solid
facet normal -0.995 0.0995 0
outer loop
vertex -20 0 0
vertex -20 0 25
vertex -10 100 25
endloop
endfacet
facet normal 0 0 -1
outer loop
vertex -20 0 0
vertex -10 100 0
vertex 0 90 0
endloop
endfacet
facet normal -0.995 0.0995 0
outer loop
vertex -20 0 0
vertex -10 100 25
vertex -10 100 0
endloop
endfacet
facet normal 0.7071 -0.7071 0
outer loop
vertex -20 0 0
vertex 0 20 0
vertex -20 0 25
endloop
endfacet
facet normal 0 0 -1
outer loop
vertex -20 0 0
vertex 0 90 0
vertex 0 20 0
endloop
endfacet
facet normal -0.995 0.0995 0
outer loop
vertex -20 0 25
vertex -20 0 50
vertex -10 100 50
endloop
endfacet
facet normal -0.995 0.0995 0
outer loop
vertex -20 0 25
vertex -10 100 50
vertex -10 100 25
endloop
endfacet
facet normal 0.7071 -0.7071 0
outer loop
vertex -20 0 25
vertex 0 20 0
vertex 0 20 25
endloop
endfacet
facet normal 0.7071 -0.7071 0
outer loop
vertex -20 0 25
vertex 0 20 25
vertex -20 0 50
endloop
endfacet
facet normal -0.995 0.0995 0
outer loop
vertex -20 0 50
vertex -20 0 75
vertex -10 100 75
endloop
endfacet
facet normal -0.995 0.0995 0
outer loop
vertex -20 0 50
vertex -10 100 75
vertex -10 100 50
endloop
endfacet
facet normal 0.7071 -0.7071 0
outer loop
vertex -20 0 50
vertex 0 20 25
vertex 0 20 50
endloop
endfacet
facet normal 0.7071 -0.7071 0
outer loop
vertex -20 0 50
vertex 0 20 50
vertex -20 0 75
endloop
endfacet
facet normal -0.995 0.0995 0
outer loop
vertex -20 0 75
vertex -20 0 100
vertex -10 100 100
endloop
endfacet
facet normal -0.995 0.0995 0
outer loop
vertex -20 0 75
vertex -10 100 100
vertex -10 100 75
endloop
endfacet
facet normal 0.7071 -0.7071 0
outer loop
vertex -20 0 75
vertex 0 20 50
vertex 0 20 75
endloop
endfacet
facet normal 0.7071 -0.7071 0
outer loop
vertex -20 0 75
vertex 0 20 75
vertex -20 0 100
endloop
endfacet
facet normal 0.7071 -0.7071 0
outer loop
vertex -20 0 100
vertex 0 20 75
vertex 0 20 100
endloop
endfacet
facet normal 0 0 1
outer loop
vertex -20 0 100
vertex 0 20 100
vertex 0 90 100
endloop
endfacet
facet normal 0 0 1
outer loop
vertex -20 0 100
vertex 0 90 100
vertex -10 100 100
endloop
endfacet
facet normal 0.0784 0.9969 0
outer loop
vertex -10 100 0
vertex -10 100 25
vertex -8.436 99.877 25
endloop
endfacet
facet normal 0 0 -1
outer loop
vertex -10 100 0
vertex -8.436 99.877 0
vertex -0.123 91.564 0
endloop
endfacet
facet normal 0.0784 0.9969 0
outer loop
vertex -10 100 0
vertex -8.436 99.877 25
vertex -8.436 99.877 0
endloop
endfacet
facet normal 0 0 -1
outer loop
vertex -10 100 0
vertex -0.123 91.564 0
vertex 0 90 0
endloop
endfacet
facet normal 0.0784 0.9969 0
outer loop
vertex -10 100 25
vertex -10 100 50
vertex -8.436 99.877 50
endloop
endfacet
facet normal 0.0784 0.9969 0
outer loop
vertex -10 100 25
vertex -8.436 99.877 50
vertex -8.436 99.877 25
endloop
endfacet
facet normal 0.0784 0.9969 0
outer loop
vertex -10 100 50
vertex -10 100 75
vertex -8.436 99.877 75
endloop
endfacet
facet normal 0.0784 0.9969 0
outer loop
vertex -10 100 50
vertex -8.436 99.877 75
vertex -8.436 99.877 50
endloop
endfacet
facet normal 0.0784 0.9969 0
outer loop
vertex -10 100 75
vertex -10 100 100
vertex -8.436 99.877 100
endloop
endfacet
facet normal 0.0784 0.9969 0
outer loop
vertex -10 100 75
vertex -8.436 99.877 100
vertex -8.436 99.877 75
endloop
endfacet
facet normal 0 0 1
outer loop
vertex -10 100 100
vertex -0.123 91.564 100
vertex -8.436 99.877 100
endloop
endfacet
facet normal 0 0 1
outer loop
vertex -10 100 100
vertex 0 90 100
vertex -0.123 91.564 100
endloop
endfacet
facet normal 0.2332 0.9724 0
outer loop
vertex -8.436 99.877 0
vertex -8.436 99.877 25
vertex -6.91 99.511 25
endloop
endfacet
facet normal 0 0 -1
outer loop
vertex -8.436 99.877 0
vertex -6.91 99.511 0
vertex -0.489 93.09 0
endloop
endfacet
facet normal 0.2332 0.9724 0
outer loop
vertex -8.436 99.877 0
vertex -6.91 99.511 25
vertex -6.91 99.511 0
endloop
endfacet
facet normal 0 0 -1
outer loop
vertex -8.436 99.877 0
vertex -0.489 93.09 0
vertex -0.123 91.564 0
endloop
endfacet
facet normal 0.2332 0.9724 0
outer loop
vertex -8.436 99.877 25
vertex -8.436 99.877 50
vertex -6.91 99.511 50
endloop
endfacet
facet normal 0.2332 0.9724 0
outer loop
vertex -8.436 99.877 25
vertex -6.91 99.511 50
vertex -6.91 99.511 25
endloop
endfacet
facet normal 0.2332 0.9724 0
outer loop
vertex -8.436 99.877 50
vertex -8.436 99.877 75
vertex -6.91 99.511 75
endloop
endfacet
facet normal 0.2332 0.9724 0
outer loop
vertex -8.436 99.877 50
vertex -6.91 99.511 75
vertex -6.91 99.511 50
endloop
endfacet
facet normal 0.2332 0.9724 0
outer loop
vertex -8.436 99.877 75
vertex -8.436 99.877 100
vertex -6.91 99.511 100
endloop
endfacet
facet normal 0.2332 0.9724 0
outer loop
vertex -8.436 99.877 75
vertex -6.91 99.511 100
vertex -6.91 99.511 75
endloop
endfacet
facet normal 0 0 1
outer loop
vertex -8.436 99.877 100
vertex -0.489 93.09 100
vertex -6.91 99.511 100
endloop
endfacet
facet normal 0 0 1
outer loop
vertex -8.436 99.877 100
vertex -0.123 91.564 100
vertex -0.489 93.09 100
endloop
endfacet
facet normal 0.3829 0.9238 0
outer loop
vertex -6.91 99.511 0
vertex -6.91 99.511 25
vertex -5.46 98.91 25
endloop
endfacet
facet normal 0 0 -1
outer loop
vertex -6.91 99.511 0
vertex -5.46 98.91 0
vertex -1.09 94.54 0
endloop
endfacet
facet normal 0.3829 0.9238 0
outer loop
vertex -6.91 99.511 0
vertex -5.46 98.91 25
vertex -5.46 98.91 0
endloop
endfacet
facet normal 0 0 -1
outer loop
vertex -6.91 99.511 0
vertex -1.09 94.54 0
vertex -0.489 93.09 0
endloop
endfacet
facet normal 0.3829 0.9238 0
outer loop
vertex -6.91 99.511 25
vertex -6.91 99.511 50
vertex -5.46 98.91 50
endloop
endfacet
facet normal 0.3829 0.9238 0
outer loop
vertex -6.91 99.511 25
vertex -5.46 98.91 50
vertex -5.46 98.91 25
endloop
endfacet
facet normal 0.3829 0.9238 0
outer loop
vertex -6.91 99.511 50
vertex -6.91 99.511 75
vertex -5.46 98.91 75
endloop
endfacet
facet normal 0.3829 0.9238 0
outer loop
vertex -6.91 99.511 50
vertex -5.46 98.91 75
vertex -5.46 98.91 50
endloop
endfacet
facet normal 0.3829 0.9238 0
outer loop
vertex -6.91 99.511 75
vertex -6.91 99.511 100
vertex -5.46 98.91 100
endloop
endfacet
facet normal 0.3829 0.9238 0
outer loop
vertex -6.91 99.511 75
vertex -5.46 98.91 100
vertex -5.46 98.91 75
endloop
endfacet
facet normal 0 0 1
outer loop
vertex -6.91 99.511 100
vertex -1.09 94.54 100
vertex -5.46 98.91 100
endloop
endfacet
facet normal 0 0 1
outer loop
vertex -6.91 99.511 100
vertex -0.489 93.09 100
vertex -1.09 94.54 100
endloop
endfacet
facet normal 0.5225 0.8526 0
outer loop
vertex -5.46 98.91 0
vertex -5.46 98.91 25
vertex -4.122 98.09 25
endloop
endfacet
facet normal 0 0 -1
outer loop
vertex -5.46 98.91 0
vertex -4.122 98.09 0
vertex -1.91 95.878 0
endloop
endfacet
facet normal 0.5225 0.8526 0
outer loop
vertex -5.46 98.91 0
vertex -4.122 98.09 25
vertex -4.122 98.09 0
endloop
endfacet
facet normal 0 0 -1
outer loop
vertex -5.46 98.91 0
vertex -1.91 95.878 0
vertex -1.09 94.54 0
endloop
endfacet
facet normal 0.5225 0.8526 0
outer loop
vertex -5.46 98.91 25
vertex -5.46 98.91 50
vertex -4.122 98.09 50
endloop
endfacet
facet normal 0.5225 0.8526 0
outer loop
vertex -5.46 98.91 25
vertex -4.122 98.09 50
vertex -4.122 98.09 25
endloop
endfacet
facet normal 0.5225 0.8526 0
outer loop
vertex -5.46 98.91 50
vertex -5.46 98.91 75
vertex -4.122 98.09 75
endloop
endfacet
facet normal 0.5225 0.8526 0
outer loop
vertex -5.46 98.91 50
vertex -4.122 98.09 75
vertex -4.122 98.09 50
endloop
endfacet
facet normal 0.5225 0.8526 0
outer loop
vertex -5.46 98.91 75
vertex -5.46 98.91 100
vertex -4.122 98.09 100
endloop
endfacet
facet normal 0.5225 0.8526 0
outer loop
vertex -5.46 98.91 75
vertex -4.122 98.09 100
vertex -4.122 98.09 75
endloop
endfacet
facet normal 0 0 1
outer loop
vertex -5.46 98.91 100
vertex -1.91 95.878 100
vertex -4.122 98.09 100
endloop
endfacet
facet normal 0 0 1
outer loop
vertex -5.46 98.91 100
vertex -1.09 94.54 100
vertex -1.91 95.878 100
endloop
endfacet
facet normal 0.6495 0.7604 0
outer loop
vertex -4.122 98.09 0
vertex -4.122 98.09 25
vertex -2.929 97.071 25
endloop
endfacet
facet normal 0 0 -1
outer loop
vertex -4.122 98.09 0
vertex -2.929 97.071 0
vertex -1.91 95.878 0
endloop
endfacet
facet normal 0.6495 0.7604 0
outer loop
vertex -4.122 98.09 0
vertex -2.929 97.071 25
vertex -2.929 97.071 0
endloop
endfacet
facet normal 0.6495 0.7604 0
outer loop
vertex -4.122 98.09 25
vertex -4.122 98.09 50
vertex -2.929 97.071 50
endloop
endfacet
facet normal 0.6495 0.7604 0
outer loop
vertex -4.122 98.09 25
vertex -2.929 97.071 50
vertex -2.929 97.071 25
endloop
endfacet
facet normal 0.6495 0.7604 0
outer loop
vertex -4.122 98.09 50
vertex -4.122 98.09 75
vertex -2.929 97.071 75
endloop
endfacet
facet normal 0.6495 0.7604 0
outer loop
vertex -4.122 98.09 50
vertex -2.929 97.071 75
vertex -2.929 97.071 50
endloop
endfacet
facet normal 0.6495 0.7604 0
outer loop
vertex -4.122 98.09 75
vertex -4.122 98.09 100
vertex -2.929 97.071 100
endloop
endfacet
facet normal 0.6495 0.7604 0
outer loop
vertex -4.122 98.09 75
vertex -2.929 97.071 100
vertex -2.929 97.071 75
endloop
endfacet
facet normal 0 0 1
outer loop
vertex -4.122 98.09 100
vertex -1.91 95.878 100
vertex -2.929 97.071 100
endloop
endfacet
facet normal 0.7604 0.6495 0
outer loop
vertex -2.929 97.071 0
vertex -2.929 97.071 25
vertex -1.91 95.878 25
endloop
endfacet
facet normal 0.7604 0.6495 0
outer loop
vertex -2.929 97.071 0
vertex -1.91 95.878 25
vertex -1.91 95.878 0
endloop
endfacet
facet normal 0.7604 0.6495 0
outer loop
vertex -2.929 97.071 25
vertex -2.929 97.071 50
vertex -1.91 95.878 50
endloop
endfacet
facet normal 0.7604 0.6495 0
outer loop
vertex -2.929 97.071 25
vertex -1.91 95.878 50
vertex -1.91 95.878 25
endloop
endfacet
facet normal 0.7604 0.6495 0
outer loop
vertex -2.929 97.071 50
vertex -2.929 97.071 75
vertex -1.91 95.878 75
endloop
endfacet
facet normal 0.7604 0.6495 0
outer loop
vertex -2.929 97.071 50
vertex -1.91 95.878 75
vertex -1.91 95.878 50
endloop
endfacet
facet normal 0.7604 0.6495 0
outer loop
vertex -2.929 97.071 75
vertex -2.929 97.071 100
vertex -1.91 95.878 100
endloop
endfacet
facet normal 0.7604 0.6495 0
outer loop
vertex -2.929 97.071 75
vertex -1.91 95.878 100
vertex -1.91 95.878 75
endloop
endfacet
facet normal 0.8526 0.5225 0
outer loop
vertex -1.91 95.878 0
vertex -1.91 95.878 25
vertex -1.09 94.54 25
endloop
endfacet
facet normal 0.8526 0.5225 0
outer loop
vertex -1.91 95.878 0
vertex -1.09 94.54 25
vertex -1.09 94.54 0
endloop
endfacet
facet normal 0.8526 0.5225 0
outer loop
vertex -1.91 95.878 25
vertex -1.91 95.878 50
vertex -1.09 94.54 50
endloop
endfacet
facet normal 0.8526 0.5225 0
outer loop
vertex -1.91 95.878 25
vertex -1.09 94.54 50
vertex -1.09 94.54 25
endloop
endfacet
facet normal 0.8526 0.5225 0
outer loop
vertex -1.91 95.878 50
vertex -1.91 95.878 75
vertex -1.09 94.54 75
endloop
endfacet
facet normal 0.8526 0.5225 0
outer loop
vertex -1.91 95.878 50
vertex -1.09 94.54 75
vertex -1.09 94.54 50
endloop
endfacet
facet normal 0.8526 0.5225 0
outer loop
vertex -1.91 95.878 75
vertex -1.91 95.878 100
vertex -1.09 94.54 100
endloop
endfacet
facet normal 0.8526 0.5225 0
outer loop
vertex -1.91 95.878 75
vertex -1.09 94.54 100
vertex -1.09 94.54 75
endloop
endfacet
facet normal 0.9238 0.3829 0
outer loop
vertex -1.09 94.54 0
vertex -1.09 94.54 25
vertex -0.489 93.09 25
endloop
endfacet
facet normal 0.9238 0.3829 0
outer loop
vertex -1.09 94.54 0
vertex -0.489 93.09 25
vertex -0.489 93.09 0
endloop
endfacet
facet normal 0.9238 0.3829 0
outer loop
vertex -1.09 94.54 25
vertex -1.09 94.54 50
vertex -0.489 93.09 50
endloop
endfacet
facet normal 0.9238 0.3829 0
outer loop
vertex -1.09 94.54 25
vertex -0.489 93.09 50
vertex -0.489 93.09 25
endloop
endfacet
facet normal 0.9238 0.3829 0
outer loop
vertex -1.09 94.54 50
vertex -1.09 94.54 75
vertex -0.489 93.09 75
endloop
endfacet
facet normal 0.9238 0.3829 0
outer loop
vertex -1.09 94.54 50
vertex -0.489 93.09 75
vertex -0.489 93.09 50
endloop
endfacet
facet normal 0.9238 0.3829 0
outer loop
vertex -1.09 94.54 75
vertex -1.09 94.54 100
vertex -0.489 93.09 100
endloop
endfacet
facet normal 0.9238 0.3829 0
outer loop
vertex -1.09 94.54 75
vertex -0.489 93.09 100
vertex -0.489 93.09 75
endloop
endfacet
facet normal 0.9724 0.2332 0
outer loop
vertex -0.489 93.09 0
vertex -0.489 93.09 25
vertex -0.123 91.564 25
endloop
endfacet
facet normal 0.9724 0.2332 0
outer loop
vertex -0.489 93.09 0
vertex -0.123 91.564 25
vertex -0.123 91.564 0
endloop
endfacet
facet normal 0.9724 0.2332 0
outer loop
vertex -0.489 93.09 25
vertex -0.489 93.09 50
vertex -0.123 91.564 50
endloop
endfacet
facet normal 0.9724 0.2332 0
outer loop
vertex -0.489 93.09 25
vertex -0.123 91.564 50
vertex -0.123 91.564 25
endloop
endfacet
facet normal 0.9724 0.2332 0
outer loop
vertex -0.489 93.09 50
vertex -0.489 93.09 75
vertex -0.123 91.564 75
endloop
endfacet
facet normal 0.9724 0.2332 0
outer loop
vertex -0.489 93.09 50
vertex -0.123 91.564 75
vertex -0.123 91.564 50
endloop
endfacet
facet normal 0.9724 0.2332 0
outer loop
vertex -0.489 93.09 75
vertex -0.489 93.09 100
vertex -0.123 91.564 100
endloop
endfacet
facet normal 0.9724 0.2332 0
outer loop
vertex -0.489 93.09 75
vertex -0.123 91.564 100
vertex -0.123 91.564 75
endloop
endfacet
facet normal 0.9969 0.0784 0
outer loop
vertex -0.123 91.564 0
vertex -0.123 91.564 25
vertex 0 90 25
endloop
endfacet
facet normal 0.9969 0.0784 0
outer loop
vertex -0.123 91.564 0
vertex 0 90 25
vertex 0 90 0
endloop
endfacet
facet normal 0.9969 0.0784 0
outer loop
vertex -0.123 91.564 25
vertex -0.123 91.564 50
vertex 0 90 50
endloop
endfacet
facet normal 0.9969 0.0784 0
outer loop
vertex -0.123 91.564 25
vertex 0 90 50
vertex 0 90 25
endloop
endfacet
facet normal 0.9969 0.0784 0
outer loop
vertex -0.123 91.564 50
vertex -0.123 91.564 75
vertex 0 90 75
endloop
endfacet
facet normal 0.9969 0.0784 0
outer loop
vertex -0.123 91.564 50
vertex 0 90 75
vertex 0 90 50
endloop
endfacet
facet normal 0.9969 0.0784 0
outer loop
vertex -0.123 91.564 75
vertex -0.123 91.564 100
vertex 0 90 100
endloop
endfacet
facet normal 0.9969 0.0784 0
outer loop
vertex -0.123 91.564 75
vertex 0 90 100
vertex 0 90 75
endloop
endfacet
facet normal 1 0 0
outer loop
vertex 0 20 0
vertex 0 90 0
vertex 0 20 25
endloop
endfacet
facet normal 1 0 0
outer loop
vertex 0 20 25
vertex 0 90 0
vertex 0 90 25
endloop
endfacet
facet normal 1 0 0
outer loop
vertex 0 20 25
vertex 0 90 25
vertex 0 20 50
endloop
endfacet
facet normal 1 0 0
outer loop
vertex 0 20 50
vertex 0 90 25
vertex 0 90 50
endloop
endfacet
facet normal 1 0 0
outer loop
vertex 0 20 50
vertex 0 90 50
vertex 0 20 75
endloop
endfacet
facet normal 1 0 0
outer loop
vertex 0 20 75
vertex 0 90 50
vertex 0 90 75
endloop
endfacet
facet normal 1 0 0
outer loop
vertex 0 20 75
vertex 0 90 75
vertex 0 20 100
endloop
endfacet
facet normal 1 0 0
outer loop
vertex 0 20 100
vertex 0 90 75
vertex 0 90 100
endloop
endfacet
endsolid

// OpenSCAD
// Start: lazy_union
default_5_default_5();
// End: lazy_union

// Modules.

// 'PartMaterial undef-default - default 5.0'
module default_5_default_5() {
  // 'None : _combine_solids_and_holes'
  union() {
    // 'default : _combine_solids_and_holes'
    union() {
      // 'test : _combine_solids_and_holes'
      union() {
        // 'test'
        linear_extrude(height=100.0, twist=0.0, slices=4, scale=[1.0, 1.0]) {
          polygon(points=[[-20.0, 0.0], [0.0, 20.0], [0.0, 90.0], [-0.12311659404862318, 91.5643446504023], [-0.4894348370484636, 93.09016994374947], [-1.0899347581163212, 94.53990499739547], [-1.9098300562505255, 95.87785252292474], [-2.9289321881345245, 97.07106781186548], [-4.122147477075267, 98.09016994374947], [-5.46009500260453, 98.91006524188369], [-6.909830056250524, 99.51056516295154], [-8.435655349597692, 99.87688340595139], [-9.999999999999998, 100.00000000000001]]);
        }
      }
    }
  }
} // end module default_5_default_5
